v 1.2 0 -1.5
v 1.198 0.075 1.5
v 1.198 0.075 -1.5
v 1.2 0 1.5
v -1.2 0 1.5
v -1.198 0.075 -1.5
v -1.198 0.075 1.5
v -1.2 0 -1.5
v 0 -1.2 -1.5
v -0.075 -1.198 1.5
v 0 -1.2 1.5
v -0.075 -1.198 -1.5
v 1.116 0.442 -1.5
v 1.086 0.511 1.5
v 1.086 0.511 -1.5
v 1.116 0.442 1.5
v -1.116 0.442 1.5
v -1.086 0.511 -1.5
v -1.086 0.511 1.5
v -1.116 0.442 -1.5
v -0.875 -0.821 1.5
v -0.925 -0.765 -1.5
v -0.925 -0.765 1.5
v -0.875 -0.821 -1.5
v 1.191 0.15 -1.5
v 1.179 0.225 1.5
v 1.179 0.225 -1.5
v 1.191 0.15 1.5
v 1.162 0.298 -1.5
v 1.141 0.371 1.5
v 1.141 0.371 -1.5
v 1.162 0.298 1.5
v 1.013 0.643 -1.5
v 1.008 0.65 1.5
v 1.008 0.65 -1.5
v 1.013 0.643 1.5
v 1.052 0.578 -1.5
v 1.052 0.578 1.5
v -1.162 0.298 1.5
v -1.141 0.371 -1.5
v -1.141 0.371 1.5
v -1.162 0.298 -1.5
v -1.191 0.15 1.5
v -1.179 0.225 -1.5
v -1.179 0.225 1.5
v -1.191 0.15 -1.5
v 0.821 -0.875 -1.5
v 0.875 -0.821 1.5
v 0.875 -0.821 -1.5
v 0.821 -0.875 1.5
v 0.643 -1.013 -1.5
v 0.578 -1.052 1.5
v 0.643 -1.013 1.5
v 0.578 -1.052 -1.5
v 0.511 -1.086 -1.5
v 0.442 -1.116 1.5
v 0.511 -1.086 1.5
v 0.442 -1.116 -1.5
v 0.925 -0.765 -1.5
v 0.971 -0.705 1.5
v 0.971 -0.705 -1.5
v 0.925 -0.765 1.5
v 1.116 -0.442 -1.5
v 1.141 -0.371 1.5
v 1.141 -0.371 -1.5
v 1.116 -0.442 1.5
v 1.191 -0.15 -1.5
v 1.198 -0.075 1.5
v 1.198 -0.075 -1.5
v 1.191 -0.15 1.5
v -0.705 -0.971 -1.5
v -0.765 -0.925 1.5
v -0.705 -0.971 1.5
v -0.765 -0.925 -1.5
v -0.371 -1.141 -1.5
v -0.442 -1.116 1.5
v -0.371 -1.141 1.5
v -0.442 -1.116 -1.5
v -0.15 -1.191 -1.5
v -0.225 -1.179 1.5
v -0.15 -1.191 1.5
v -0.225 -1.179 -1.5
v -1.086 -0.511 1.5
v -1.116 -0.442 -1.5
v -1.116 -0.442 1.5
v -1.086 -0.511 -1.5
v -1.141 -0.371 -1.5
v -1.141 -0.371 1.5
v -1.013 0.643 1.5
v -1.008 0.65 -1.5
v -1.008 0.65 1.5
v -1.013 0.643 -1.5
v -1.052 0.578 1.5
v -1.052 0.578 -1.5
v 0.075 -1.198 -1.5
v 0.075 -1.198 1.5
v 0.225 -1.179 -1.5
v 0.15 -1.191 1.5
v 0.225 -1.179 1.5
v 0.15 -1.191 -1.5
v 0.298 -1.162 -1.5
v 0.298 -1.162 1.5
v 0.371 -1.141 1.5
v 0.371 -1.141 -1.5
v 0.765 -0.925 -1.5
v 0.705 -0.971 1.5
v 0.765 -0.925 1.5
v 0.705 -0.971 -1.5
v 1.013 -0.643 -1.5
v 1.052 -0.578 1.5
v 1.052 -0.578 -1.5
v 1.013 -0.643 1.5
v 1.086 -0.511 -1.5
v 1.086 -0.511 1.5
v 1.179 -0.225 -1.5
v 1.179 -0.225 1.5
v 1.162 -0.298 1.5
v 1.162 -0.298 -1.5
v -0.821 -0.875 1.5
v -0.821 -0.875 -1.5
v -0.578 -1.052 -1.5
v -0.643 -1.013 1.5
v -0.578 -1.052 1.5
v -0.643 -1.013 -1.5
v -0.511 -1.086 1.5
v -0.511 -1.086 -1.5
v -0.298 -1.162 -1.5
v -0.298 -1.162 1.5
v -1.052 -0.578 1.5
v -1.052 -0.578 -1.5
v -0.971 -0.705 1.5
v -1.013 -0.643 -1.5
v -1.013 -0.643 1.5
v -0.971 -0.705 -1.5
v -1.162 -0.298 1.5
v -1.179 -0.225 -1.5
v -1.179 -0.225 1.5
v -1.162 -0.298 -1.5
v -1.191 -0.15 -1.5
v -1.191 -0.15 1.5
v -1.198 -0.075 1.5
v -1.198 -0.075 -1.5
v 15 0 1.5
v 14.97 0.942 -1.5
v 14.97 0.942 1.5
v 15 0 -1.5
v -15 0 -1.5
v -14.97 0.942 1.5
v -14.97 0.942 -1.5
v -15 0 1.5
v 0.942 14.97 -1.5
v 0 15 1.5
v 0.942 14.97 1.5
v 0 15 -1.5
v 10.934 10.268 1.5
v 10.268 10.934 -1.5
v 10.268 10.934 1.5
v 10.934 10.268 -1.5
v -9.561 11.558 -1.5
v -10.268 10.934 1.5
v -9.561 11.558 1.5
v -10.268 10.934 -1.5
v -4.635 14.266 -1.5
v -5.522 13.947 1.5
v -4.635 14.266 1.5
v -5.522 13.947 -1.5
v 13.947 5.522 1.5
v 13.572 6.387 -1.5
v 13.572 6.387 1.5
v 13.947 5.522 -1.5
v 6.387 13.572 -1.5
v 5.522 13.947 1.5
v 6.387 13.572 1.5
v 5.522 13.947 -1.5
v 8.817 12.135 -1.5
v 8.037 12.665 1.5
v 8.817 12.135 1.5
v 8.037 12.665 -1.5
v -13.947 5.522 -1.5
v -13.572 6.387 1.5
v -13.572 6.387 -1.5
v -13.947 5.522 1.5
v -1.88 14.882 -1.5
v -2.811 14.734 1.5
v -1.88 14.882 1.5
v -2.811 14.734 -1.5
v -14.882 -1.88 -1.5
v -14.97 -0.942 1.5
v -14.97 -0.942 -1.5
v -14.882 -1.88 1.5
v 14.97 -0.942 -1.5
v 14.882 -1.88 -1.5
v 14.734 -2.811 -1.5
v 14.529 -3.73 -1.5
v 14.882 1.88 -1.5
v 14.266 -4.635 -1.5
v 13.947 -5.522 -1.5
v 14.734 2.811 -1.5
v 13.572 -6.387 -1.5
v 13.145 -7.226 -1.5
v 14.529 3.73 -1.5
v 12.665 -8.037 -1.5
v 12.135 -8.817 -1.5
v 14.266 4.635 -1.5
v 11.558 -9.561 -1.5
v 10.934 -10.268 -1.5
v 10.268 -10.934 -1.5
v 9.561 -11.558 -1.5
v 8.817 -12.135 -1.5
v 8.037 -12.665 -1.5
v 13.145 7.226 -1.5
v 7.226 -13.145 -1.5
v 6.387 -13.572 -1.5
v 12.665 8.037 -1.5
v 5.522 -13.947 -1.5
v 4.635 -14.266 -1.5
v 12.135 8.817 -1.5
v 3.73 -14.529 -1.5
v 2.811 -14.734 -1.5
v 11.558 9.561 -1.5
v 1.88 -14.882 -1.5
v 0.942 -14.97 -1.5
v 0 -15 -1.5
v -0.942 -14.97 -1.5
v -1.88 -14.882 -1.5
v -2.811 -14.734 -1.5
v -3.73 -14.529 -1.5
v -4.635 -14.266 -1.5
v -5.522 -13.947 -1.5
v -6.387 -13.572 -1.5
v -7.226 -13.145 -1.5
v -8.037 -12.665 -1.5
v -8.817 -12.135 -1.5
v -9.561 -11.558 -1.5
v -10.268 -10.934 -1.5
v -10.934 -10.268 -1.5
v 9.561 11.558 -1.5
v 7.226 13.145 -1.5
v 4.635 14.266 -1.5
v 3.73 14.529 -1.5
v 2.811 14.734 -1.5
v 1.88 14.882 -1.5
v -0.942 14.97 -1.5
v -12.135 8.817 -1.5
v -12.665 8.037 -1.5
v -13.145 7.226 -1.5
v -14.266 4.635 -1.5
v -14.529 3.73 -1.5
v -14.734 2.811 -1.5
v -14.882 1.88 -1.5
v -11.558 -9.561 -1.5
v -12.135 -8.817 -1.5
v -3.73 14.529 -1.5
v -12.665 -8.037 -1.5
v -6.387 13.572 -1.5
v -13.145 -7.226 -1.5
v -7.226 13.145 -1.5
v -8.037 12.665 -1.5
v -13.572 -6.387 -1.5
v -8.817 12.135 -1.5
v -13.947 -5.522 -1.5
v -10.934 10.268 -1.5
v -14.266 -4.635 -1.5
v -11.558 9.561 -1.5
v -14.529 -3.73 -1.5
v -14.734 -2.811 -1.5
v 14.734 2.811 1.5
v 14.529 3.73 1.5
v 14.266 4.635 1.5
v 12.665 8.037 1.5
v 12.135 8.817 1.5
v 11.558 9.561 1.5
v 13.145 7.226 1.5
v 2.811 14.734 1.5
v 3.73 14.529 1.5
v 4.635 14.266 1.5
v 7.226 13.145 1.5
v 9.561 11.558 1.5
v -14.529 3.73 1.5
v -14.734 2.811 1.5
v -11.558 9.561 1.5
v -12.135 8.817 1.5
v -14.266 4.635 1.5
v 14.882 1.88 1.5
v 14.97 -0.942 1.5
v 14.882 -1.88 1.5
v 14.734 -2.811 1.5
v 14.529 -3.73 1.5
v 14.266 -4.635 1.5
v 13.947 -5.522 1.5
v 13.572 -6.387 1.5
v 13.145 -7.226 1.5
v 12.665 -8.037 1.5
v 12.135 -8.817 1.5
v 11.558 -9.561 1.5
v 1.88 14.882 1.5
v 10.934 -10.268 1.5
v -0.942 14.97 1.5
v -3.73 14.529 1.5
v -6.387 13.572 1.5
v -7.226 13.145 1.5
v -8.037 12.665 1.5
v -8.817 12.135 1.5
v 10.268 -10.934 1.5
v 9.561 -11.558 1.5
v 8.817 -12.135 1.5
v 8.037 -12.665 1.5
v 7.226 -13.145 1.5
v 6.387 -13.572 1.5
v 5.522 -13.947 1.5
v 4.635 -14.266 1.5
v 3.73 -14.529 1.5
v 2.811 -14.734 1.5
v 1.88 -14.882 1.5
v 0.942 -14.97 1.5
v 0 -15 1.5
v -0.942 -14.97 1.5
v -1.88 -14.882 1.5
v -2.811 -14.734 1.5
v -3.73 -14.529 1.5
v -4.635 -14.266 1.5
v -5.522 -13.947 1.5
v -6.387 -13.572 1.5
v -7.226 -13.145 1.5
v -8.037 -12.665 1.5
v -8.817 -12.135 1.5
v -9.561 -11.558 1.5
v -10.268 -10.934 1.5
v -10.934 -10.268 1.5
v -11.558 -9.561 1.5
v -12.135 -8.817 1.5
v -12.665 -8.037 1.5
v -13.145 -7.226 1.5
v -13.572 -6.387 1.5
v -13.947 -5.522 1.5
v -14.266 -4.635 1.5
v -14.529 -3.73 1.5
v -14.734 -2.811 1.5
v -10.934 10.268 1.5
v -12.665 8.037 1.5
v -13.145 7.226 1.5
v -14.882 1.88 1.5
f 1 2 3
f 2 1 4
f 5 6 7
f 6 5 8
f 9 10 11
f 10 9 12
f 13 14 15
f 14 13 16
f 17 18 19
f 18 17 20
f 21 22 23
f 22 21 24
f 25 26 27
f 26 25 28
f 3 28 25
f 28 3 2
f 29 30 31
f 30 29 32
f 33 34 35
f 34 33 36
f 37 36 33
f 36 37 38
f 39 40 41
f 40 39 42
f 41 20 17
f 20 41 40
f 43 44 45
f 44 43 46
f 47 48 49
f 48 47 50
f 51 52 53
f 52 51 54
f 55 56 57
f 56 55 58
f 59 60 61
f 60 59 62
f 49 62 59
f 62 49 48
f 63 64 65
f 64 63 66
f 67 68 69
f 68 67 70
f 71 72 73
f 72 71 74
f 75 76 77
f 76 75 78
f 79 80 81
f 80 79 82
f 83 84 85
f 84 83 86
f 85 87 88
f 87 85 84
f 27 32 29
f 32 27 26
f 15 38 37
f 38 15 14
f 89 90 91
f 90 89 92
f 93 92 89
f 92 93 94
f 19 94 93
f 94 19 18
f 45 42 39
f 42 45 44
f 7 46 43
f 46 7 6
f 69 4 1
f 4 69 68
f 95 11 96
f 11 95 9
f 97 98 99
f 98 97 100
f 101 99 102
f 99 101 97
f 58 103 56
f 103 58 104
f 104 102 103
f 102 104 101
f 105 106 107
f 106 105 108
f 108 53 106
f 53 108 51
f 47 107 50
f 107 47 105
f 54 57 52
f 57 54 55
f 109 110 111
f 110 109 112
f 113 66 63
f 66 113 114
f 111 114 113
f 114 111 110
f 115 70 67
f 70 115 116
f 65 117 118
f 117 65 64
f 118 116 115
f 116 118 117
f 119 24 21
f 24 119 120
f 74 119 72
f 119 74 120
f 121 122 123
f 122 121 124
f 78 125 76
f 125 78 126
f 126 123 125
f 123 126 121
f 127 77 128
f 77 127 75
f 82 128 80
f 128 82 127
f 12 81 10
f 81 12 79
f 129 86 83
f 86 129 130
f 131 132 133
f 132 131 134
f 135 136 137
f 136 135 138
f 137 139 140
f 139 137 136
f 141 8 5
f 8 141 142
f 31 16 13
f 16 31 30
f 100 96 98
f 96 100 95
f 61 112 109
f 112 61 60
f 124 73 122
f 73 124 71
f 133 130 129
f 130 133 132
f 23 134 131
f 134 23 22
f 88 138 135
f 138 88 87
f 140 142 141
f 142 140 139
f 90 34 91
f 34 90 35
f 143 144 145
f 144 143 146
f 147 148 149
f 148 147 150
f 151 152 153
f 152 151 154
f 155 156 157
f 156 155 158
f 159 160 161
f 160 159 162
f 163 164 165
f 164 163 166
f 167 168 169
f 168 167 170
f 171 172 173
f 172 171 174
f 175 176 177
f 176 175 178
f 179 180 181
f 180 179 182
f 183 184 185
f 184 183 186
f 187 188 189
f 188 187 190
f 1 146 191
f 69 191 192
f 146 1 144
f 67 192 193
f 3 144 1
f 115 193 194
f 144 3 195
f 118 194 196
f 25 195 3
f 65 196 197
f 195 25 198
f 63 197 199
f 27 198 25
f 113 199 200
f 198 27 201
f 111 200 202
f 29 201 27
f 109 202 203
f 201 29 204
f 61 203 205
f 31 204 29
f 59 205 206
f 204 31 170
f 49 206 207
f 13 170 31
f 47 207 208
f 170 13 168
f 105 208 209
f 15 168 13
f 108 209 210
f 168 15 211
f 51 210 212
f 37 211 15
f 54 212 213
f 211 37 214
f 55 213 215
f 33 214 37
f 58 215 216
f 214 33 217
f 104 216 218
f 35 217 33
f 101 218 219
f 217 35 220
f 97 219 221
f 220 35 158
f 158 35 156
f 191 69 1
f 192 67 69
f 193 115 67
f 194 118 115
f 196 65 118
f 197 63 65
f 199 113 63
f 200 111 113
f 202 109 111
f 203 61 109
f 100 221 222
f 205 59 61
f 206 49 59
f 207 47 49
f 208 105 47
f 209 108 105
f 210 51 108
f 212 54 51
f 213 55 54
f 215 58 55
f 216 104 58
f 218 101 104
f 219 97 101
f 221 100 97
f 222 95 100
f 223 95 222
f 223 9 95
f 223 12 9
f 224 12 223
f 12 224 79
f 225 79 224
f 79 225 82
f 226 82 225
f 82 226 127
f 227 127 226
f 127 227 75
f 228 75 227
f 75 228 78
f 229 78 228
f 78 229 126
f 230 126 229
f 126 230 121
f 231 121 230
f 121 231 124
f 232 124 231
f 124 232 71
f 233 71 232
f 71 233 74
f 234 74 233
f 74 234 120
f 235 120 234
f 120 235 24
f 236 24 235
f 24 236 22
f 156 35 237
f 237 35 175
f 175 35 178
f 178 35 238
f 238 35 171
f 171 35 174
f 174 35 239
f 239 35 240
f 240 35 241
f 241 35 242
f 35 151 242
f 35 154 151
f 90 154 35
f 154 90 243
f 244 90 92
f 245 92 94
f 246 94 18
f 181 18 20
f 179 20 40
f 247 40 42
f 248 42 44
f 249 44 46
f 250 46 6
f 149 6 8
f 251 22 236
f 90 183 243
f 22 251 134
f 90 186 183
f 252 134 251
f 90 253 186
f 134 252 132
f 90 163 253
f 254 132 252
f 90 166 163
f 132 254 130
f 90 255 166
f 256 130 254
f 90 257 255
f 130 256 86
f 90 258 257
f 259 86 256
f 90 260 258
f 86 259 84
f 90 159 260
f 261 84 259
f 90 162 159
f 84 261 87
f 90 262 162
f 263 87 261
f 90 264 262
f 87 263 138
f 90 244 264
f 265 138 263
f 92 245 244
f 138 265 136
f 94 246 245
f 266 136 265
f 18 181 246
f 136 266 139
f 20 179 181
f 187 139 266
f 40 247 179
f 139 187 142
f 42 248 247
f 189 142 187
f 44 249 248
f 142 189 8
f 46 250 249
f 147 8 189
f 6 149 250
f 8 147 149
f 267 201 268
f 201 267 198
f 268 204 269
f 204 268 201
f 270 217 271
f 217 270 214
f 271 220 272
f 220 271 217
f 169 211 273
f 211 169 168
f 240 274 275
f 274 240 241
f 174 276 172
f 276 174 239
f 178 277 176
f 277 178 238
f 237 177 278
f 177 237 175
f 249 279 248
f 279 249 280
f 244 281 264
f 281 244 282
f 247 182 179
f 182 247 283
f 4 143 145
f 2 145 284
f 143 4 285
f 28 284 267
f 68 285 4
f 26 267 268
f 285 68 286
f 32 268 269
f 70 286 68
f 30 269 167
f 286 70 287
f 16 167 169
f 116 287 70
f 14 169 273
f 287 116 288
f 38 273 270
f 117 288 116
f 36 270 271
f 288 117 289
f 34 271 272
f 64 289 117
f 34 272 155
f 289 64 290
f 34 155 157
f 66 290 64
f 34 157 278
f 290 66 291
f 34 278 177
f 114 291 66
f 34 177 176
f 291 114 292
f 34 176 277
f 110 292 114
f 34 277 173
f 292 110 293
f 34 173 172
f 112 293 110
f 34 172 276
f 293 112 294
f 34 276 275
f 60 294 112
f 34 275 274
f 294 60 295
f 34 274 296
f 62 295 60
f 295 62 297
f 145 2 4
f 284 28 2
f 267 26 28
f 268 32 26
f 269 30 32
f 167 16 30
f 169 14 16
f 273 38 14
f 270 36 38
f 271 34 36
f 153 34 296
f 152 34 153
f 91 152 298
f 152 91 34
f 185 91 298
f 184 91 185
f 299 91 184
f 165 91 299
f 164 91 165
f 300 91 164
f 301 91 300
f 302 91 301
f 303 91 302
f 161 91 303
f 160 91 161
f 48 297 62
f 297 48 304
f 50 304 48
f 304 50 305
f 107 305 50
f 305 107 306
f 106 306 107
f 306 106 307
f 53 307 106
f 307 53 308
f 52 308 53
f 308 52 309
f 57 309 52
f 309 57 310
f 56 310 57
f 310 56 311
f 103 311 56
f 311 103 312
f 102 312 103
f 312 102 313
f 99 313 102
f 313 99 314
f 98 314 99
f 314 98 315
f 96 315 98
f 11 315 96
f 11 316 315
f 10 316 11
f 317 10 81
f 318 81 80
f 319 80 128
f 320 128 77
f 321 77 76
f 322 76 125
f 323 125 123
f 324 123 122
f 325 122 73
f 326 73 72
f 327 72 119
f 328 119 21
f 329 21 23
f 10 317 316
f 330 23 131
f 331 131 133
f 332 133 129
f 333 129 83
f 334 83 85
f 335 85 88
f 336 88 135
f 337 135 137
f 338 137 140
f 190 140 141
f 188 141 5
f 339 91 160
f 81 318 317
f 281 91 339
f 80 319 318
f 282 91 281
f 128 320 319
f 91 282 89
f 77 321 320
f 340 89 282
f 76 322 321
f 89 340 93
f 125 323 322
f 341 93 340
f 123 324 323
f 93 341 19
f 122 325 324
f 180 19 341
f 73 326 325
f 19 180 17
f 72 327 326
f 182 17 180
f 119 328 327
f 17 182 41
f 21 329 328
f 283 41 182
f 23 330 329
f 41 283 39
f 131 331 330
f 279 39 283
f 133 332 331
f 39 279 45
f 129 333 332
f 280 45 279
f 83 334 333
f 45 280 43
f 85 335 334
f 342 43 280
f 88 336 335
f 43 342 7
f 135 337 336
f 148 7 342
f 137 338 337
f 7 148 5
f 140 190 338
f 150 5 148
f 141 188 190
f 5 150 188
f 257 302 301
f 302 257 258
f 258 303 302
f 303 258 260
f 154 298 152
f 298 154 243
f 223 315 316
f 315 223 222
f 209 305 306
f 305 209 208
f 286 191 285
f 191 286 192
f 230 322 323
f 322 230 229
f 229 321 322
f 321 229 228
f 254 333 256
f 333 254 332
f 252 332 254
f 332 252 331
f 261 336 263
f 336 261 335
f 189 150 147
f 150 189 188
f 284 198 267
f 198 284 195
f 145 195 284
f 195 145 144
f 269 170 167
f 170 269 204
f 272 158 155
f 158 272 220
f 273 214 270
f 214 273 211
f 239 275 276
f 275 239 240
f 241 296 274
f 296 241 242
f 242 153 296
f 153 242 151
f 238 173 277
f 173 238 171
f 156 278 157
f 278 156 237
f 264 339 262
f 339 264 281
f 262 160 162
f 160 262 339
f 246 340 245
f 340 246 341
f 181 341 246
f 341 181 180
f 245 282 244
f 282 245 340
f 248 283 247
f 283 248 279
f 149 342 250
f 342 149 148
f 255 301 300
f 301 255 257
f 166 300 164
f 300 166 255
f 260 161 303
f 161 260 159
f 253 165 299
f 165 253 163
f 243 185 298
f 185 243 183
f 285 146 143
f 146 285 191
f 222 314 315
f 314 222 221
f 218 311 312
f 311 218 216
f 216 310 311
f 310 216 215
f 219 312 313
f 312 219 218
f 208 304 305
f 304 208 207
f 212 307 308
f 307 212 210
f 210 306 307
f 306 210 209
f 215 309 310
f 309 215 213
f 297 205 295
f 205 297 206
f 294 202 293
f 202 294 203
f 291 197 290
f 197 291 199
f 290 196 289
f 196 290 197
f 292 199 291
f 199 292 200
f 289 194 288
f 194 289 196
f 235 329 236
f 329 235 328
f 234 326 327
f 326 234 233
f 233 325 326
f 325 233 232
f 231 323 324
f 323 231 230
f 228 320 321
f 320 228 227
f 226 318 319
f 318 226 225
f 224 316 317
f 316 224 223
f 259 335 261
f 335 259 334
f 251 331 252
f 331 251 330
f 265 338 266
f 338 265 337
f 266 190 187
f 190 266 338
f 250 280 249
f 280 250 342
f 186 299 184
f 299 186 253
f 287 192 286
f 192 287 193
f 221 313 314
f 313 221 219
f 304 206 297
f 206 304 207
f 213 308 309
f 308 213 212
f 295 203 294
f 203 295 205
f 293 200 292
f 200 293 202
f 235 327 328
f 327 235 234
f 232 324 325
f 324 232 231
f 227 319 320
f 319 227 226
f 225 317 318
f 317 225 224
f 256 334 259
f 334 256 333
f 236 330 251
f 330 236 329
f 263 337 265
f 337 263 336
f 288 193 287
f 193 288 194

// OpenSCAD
$fn=100;

// Make a d-shaft
// @length The length of the shaft
// @diameter The diameter of the shaft
// @remain The amount of material left on one side, after cutting it flat
// @pad Padding for printing, recommended 0.05-0.1
module D_shaft(height, diameter, remain, pad) {
    difference() {
        cylinder(h=height, r=diameter/2+pad/2, center = true);
        translate([0,diameter/2+pad/2+remain+pad,0])
        cube([diameter+pad,diameter+pad,height*2], center=true);
    }
}




difference() {
    cylinder(r=15, h=3, center=true);
    D_shaft(6, 2.3, 0.55, 0.1);
}
